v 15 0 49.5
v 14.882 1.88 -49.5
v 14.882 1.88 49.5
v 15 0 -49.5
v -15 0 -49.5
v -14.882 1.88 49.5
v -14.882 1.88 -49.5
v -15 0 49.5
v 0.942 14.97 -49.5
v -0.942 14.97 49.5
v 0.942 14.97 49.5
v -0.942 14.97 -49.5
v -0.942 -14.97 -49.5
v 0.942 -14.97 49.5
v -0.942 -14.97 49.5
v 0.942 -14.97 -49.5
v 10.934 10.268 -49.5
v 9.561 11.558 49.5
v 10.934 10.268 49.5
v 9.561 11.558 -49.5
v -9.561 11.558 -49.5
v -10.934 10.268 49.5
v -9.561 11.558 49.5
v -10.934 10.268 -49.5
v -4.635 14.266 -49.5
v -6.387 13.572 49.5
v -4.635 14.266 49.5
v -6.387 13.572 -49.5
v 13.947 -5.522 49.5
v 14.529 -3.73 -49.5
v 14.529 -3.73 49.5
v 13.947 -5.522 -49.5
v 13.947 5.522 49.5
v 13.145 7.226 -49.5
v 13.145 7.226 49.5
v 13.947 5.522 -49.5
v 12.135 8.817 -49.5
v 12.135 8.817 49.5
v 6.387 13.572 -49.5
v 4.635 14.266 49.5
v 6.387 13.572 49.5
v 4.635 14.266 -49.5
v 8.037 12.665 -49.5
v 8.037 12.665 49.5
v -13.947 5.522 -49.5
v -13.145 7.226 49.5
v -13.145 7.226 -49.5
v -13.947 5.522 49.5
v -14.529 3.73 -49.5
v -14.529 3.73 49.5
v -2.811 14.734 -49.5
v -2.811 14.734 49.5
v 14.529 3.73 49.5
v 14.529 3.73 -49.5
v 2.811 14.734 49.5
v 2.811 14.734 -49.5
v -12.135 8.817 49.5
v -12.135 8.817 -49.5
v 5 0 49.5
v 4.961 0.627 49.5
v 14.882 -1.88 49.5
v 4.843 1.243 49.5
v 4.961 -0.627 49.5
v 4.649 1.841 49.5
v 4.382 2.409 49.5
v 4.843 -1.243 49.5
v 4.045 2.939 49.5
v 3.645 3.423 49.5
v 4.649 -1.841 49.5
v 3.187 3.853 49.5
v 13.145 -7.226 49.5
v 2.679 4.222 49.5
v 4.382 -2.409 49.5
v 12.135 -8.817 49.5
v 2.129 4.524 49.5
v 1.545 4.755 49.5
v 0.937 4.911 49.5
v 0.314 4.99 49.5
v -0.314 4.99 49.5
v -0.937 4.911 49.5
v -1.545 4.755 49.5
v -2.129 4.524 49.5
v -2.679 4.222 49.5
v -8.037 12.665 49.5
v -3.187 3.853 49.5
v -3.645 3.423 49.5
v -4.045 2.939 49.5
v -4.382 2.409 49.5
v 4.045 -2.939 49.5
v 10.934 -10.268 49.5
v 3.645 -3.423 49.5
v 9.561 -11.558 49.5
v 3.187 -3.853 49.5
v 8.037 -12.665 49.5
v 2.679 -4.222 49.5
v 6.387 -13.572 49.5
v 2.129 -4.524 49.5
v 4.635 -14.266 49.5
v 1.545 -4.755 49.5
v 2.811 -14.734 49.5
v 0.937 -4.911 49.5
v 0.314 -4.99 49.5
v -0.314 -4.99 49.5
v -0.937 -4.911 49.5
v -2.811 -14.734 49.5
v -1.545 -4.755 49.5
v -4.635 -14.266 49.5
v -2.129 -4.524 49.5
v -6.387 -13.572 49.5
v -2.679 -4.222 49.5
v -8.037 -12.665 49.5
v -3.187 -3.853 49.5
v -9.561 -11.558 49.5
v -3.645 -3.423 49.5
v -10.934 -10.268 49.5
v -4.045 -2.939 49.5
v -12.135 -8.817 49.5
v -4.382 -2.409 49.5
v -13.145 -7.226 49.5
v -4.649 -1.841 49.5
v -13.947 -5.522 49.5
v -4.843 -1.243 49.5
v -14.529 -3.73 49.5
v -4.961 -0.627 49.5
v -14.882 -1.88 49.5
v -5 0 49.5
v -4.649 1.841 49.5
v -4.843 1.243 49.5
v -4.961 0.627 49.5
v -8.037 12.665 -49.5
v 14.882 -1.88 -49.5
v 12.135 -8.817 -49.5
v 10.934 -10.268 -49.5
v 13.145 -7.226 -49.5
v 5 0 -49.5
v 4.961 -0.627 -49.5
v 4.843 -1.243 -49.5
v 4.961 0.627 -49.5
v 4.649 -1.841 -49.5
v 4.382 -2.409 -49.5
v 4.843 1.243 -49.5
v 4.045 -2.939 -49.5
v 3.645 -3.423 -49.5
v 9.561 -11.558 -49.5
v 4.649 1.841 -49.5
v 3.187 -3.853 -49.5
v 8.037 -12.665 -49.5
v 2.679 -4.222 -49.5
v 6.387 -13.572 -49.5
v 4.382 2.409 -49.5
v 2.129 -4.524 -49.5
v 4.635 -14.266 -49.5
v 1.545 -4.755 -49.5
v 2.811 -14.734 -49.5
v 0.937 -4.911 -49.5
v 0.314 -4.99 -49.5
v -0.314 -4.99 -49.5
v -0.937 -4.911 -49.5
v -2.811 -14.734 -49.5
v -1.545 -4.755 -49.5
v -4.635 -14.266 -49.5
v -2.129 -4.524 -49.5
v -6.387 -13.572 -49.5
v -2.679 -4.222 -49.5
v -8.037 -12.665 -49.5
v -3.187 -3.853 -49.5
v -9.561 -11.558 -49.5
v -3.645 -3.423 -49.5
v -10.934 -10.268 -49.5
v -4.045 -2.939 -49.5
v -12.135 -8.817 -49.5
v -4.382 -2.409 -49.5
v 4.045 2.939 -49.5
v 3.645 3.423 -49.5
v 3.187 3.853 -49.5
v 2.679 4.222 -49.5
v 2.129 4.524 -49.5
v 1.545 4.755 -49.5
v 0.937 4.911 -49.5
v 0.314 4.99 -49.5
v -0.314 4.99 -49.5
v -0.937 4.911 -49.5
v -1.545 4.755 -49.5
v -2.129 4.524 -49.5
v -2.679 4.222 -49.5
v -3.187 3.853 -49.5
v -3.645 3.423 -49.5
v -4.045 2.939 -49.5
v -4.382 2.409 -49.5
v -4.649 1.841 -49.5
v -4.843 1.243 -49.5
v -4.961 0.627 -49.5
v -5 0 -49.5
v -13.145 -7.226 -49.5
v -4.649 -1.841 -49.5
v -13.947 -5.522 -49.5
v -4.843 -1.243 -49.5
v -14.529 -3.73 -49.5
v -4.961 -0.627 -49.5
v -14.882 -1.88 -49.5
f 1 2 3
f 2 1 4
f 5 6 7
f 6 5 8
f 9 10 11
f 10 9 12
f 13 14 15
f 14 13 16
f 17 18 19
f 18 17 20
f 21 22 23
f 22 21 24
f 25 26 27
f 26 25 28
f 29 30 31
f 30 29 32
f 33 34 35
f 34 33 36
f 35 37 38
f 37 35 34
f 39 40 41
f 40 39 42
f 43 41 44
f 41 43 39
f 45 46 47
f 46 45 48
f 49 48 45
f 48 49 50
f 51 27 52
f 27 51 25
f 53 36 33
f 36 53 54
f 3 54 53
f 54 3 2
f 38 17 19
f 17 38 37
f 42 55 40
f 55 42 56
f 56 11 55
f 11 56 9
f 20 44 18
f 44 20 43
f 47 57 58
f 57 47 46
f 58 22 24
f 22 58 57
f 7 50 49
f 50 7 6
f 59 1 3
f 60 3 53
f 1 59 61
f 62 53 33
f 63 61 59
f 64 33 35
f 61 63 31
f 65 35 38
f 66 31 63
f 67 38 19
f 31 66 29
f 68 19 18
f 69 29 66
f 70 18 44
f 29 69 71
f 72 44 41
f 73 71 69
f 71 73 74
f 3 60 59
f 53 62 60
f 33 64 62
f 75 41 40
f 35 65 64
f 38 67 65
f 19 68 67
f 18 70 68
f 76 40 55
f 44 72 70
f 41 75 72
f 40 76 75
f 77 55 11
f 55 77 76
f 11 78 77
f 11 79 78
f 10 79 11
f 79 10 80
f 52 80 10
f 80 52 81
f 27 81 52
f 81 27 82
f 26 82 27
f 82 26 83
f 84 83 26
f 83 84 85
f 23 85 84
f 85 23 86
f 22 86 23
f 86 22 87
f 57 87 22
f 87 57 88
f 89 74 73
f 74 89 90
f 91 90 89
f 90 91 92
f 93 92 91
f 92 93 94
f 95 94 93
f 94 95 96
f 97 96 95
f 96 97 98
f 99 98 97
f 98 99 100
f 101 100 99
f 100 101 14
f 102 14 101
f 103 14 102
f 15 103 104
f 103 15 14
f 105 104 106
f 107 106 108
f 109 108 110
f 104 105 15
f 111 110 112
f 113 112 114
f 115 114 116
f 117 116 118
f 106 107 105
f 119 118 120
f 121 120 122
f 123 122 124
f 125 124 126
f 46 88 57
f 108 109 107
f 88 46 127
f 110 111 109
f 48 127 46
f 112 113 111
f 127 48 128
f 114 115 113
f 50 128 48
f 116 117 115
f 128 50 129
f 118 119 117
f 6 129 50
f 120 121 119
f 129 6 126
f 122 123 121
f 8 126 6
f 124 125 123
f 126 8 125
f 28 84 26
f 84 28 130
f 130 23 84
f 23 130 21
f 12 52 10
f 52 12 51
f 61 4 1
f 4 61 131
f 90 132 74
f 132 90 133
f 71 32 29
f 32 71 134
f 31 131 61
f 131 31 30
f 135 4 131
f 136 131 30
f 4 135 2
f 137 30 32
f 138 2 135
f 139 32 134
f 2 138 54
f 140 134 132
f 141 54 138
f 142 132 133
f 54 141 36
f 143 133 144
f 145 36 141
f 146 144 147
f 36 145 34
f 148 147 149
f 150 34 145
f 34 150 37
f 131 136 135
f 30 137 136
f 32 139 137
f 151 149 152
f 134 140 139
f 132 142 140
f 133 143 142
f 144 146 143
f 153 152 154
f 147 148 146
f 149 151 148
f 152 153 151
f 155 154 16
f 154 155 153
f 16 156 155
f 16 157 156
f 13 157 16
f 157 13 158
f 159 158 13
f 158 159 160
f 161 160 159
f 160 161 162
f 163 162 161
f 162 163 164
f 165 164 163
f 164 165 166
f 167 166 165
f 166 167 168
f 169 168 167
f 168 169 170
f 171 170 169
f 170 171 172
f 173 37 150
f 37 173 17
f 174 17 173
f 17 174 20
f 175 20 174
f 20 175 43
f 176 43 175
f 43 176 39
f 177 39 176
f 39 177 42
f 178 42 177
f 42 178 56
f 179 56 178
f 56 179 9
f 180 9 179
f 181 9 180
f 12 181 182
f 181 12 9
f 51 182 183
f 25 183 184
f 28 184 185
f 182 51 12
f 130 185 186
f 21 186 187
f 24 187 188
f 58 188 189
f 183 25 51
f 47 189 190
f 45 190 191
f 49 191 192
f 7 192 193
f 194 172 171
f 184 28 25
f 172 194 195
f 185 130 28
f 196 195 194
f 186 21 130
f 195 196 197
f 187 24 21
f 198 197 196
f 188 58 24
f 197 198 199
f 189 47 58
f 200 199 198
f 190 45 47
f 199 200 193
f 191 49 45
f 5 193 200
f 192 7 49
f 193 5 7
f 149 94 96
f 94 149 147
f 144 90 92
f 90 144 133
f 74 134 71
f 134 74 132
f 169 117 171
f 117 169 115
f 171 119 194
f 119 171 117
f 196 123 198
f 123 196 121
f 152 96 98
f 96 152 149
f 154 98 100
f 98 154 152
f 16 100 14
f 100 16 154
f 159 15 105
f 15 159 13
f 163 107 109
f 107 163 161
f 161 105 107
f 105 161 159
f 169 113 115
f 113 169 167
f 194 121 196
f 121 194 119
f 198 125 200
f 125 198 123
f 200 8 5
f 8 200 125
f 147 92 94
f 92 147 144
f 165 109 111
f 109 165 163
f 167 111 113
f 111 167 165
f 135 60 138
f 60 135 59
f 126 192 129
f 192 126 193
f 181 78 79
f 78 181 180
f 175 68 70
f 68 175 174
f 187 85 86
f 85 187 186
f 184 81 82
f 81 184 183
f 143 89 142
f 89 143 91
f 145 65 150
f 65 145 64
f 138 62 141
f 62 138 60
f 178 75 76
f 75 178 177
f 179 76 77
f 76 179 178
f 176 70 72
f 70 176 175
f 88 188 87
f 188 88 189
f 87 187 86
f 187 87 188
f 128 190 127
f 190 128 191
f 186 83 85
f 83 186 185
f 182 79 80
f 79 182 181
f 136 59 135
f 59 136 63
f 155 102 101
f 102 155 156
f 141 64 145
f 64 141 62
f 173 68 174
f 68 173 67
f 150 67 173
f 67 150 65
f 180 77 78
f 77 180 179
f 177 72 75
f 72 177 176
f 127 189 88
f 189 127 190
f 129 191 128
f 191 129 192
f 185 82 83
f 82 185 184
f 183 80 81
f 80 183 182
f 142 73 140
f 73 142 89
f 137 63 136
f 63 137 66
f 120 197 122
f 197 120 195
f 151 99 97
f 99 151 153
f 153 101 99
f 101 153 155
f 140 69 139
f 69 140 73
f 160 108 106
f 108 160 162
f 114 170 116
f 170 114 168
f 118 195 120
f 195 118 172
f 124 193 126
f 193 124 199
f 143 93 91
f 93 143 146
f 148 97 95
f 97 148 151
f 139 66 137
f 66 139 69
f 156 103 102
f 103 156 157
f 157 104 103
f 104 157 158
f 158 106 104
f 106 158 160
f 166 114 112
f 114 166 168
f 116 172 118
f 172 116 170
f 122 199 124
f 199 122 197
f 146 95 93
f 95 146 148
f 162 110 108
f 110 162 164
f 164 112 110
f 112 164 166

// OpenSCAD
$fn = 50;


difference() {
	union() {
		translate(v = [0, 0, -49.5000000000]) {
			cylinder(h = 99, r = 15.0000000000);
		}
	}
	union() {
		translate(v = [0, 0, -100.0000000000]) {
			cylinder(h = 200, r = 5.0000000000);
		}
	}
}
